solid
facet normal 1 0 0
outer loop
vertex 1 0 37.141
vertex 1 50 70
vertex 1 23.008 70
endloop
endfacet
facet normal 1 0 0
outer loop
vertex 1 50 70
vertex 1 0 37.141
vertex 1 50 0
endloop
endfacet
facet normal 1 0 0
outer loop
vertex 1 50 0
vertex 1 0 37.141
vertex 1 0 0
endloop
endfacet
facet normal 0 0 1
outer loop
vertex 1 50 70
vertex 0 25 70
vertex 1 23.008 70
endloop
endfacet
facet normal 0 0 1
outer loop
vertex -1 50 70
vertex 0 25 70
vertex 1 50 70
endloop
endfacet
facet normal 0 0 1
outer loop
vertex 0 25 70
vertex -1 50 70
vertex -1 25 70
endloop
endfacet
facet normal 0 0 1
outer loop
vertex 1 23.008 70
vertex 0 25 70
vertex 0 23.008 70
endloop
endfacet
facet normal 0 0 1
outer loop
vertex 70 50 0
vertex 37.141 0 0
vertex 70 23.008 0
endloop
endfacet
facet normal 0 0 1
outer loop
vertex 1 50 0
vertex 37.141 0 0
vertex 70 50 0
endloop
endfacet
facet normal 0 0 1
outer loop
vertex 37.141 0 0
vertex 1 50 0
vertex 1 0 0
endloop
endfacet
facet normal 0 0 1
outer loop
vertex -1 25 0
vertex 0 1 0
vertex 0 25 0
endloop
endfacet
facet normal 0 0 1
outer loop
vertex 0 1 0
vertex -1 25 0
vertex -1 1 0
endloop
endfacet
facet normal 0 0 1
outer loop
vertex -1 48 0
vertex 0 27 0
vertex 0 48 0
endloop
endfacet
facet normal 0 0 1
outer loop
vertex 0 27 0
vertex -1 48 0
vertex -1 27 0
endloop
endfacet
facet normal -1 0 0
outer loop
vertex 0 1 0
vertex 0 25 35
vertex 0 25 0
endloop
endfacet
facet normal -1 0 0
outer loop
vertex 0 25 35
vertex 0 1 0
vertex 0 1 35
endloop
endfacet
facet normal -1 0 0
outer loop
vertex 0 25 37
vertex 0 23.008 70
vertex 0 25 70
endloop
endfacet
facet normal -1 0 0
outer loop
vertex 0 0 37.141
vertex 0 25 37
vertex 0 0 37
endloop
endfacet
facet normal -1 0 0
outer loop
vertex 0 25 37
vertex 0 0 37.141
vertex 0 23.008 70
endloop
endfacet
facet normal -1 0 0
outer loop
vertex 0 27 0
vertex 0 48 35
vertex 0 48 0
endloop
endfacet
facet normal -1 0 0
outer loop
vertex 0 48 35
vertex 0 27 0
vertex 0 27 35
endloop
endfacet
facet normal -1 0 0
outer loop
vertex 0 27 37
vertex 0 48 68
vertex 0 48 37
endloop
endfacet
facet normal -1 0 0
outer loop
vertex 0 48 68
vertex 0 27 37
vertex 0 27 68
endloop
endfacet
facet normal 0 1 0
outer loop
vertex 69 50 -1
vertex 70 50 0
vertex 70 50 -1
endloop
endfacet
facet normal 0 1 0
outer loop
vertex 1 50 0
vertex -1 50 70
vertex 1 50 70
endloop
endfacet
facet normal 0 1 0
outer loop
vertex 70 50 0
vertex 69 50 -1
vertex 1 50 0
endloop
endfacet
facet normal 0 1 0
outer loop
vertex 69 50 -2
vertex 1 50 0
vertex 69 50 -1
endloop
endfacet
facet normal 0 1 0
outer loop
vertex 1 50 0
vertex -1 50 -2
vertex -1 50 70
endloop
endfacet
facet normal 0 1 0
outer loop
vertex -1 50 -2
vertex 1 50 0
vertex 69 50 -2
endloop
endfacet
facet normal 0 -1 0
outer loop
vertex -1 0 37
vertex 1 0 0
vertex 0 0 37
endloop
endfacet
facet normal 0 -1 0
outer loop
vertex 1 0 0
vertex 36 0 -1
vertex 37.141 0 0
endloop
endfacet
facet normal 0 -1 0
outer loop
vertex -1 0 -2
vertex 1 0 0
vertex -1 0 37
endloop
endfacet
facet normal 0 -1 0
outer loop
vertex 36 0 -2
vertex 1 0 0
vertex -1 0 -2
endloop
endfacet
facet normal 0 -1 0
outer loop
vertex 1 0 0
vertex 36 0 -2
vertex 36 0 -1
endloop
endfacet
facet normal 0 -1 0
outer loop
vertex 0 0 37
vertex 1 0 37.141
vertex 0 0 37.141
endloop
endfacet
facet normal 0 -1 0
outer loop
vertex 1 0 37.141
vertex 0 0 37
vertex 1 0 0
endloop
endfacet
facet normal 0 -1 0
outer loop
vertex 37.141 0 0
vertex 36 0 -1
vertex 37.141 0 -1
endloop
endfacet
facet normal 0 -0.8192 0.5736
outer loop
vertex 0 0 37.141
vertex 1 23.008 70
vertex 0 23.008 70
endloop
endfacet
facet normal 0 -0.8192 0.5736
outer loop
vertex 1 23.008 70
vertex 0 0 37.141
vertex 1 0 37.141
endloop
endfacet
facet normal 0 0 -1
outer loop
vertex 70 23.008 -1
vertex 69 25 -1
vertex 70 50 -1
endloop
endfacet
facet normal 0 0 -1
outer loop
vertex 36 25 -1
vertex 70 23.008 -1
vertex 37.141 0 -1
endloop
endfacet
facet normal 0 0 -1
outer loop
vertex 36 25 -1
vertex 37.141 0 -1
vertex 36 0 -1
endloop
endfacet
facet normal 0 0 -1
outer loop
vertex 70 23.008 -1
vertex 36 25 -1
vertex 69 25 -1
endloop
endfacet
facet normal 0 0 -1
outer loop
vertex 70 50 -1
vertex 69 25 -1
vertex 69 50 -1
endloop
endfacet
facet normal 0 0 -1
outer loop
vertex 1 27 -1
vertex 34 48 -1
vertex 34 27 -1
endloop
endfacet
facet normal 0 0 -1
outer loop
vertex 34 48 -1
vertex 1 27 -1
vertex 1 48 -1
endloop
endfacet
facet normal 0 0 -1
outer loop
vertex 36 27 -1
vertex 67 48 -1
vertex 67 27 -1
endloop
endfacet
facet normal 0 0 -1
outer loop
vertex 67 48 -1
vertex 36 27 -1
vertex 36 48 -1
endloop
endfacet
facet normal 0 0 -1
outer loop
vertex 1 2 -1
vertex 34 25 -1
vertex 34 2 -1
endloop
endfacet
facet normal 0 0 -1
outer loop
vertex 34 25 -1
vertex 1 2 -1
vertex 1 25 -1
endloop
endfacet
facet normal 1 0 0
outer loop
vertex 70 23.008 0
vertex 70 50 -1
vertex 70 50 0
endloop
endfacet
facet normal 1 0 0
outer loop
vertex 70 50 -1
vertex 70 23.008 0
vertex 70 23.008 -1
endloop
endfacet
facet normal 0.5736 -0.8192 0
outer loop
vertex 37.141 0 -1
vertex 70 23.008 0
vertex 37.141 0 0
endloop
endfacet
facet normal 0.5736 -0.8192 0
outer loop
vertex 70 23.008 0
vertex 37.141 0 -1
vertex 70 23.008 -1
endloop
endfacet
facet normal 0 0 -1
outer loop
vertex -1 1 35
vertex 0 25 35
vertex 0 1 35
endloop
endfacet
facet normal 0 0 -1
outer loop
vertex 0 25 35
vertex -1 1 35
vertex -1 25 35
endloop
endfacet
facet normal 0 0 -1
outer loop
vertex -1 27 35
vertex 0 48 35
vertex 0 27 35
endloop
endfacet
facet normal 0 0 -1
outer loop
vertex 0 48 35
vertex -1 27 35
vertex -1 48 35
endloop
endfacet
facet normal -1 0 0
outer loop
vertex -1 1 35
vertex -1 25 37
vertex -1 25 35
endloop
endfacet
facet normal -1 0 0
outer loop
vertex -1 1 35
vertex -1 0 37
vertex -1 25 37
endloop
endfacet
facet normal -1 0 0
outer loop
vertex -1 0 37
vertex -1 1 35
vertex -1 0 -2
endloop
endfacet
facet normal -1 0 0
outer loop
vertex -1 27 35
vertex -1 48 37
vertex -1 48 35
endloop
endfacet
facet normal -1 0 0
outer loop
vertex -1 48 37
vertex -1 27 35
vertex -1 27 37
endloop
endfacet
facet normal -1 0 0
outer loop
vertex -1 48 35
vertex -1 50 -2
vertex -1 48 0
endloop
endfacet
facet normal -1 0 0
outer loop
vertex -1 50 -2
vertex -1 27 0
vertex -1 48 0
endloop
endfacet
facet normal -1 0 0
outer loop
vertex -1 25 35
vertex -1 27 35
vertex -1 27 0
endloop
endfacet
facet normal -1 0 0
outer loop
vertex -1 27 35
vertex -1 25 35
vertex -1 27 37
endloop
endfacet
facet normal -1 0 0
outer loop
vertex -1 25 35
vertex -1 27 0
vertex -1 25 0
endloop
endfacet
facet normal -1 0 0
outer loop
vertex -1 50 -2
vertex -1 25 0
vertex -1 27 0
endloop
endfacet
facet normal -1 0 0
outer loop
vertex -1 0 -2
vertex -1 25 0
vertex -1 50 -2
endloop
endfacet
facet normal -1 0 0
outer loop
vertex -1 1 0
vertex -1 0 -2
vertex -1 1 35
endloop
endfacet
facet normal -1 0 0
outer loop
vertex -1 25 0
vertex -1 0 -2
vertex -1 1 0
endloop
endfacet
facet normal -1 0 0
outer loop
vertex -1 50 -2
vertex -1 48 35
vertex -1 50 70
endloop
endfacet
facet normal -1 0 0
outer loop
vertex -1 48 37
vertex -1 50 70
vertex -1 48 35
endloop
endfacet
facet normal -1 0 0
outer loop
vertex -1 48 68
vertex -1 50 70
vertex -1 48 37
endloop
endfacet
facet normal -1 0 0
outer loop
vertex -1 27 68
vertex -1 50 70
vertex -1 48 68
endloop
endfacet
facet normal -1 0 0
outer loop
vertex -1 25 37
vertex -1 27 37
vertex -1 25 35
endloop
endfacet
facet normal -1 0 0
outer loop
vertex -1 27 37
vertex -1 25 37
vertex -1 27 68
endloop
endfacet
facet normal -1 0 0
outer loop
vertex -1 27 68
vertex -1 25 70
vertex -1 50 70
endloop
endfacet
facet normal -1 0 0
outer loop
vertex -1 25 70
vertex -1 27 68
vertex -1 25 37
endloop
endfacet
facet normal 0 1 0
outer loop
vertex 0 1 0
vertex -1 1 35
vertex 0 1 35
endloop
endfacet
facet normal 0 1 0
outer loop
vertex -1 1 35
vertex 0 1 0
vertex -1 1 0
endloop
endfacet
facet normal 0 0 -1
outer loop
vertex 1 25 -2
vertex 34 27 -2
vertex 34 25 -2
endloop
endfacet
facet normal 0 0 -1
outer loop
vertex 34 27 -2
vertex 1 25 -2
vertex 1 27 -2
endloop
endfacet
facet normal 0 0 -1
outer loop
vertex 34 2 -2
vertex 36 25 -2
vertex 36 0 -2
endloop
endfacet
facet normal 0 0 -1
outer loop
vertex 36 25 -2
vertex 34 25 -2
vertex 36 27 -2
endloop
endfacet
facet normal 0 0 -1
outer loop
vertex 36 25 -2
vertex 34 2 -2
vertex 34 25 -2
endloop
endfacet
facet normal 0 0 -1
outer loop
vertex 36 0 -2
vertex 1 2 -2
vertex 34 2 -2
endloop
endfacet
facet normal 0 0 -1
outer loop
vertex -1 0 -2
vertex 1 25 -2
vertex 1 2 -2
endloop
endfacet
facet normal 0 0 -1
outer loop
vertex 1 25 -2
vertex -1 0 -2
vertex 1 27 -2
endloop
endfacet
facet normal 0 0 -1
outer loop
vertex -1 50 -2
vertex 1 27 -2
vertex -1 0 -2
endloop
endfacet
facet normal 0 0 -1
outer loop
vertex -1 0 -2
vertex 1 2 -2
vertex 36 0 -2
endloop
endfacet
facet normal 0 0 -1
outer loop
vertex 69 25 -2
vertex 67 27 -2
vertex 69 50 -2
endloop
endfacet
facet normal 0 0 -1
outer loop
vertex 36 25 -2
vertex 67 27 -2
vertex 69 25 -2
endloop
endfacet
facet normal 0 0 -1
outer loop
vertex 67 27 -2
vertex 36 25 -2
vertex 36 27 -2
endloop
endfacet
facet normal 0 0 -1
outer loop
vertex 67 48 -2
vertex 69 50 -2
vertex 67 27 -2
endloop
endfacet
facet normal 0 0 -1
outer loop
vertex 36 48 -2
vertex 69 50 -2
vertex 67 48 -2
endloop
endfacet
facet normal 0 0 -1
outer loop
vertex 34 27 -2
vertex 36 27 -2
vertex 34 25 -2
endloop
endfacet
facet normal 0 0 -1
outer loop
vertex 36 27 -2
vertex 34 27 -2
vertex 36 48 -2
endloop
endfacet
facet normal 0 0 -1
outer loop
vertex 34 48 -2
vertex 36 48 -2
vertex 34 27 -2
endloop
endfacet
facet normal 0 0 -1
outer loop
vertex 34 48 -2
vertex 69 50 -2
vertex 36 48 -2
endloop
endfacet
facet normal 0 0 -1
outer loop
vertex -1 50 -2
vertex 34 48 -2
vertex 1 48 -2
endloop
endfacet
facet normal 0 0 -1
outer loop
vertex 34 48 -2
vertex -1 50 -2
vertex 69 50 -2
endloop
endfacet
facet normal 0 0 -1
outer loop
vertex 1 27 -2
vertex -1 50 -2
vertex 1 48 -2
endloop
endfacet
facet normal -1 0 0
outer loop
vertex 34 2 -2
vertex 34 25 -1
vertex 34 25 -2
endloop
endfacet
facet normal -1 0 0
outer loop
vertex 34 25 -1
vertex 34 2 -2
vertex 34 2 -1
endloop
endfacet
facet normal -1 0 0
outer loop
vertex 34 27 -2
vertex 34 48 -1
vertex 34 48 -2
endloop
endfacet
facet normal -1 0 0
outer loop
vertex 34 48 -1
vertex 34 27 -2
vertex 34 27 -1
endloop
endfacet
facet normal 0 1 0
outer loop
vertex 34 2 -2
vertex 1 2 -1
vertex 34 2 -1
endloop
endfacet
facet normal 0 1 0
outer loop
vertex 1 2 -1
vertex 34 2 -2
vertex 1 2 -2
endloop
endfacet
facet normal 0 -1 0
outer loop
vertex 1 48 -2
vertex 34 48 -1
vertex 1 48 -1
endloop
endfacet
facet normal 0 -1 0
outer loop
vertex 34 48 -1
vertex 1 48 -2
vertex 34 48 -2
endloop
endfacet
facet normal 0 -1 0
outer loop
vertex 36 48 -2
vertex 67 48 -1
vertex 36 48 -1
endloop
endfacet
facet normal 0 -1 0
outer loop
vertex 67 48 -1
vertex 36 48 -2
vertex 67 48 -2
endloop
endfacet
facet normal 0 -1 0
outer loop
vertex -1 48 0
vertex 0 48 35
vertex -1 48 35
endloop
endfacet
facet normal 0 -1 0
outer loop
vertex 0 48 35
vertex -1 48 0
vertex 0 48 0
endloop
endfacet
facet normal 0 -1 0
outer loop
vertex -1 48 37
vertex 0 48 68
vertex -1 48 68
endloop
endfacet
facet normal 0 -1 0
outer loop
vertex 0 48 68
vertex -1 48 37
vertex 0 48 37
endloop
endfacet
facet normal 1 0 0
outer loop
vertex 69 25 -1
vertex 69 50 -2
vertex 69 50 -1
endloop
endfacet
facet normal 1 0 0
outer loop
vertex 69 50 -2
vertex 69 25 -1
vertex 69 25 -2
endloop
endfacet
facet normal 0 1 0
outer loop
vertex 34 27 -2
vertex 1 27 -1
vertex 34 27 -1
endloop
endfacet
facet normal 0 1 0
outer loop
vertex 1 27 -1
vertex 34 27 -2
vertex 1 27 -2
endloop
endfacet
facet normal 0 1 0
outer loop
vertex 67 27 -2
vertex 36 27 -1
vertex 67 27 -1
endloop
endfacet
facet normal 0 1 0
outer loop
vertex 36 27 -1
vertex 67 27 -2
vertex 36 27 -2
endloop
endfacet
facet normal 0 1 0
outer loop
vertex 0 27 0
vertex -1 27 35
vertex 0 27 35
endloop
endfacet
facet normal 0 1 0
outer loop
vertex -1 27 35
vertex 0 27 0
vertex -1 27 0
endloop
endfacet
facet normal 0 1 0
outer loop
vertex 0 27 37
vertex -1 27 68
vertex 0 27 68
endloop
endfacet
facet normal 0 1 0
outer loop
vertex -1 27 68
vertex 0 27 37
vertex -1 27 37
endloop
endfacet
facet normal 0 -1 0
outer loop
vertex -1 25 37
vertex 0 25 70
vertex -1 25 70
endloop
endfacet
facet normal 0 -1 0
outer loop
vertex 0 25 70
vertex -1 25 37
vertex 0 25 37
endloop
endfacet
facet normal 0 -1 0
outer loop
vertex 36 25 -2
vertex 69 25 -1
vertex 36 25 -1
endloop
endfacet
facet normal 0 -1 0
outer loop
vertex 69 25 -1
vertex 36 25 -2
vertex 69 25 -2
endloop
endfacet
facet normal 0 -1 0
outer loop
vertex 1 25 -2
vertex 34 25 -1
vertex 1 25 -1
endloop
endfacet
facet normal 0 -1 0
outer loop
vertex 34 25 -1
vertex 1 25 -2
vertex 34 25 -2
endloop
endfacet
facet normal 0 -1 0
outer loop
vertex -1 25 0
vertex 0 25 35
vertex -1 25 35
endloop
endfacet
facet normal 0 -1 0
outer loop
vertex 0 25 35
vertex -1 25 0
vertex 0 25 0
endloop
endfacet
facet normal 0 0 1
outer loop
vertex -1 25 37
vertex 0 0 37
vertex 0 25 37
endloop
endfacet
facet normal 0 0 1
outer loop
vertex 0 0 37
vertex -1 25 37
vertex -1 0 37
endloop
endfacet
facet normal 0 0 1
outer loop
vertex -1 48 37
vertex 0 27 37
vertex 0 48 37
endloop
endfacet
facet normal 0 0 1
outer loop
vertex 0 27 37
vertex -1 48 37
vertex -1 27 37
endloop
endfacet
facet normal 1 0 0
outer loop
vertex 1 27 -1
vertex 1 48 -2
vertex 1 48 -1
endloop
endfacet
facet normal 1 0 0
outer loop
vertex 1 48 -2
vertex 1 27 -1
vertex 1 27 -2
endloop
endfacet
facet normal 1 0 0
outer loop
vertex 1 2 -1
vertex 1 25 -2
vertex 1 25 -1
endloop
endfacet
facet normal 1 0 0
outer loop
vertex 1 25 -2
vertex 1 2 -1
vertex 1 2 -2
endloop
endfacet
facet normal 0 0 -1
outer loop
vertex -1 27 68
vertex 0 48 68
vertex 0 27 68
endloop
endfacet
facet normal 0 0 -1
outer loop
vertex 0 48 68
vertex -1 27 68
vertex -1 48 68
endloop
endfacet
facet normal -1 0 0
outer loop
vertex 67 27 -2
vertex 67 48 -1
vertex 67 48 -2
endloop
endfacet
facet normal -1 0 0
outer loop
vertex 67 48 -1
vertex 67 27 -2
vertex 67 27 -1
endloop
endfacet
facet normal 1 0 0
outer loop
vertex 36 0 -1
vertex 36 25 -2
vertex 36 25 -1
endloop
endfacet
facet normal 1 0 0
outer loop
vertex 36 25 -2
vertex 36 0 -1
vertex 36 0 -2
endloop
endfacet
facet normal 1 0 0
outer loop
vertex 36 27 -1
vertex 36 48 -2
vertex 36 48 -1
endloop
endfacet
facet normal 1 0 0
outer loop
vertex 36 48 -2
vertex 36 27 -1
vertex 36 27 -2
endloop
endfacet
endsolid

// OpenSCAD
length = 70;
width = 1;
height = 50;

staple_length = 20;
staple_height = 10;

difference() {
   cube([width, height, length]);
   //translate([0, 5, 5]) rotate([0,0,0]) cube([1, staple_height, staple_length]);
   //translate([0, height-staple_height-5, length-staple_length-5 ]) rotate([0,0,0]) cube([1, staple_height, staple_length]);
   //translate([0,  5, length-staple_length-5 ]) rotate([0,0,0]) cube([1, staple_height, staple_length]);
   //translate([0,  height-staple_height-5, 5 ]) rotate([0,0,0]) cube([1, staple_height, staple_length]);

   translate([-1,  -5, 30 ]) rotate([55,0,0]) cube([4, length, height/2]);


}
difference() {
   rotate([0,90,0]) cube([width, height, length]);
   //translate([5, 5, -1]) rotate([0,90,0]) cube([1, staple_height, staple_length]);
   //translate([length-staple_length-5, height-staple_height-5, -1 ]) rotate([0,90,0]) cube([1, staple_height, staple_length]);
   //translate([5, height-staple_height-5, -1 ]) rotate([0,90,0]) cube([1, staple_height, staple_length]);
   //translate([length-staple_length-5, 5, -1 ]) rotate([0,90,0]) cube([1, staple_height, staple_length]);

   rotate([0,90,0]) translate([-1,  -5, 30 ]) rotate([55,0,0]) cube([4, length, height/2]);   
}



translate([-1, 0, 0]) rotate([0,0,0]) cube([2, 2, length]/2);
translate([-1, 0, 0]) rotate([0,90,0]) cube([2, 2, length/2]);
translate([-1, height-2, 0]) rotate([0,0,0]) cube([2, 2, length]);
translate([-1, height-2, 0]) rotate([0,90,0]) cube([2, 2, length]);
translate([-1, height/2, 0]) rotate([0,0,0]) cube([2, 2, length]);
translate([-1, height/2, 0]) rotate([0,90,0]) cube([2, 2, length]);

translate([-1, 0, length/2]) rotate([0,0,0]) cube([2, height, 2]);
translate([-1, 0, -2]) rotate([0,0,0]) cube([2, height, 2]);
translate([-1, height/2, length-2]) rotate([0,0,0]) cube([2, height/2, 2]);
translate([length-3, height/2 ,-2 ]) rotate([0,0,0]) cube([2, height/2, 2]);
translate([length/2-1, 0 ,-2 ]) rotate([0,0,0]) cube([2, height, 2]);
